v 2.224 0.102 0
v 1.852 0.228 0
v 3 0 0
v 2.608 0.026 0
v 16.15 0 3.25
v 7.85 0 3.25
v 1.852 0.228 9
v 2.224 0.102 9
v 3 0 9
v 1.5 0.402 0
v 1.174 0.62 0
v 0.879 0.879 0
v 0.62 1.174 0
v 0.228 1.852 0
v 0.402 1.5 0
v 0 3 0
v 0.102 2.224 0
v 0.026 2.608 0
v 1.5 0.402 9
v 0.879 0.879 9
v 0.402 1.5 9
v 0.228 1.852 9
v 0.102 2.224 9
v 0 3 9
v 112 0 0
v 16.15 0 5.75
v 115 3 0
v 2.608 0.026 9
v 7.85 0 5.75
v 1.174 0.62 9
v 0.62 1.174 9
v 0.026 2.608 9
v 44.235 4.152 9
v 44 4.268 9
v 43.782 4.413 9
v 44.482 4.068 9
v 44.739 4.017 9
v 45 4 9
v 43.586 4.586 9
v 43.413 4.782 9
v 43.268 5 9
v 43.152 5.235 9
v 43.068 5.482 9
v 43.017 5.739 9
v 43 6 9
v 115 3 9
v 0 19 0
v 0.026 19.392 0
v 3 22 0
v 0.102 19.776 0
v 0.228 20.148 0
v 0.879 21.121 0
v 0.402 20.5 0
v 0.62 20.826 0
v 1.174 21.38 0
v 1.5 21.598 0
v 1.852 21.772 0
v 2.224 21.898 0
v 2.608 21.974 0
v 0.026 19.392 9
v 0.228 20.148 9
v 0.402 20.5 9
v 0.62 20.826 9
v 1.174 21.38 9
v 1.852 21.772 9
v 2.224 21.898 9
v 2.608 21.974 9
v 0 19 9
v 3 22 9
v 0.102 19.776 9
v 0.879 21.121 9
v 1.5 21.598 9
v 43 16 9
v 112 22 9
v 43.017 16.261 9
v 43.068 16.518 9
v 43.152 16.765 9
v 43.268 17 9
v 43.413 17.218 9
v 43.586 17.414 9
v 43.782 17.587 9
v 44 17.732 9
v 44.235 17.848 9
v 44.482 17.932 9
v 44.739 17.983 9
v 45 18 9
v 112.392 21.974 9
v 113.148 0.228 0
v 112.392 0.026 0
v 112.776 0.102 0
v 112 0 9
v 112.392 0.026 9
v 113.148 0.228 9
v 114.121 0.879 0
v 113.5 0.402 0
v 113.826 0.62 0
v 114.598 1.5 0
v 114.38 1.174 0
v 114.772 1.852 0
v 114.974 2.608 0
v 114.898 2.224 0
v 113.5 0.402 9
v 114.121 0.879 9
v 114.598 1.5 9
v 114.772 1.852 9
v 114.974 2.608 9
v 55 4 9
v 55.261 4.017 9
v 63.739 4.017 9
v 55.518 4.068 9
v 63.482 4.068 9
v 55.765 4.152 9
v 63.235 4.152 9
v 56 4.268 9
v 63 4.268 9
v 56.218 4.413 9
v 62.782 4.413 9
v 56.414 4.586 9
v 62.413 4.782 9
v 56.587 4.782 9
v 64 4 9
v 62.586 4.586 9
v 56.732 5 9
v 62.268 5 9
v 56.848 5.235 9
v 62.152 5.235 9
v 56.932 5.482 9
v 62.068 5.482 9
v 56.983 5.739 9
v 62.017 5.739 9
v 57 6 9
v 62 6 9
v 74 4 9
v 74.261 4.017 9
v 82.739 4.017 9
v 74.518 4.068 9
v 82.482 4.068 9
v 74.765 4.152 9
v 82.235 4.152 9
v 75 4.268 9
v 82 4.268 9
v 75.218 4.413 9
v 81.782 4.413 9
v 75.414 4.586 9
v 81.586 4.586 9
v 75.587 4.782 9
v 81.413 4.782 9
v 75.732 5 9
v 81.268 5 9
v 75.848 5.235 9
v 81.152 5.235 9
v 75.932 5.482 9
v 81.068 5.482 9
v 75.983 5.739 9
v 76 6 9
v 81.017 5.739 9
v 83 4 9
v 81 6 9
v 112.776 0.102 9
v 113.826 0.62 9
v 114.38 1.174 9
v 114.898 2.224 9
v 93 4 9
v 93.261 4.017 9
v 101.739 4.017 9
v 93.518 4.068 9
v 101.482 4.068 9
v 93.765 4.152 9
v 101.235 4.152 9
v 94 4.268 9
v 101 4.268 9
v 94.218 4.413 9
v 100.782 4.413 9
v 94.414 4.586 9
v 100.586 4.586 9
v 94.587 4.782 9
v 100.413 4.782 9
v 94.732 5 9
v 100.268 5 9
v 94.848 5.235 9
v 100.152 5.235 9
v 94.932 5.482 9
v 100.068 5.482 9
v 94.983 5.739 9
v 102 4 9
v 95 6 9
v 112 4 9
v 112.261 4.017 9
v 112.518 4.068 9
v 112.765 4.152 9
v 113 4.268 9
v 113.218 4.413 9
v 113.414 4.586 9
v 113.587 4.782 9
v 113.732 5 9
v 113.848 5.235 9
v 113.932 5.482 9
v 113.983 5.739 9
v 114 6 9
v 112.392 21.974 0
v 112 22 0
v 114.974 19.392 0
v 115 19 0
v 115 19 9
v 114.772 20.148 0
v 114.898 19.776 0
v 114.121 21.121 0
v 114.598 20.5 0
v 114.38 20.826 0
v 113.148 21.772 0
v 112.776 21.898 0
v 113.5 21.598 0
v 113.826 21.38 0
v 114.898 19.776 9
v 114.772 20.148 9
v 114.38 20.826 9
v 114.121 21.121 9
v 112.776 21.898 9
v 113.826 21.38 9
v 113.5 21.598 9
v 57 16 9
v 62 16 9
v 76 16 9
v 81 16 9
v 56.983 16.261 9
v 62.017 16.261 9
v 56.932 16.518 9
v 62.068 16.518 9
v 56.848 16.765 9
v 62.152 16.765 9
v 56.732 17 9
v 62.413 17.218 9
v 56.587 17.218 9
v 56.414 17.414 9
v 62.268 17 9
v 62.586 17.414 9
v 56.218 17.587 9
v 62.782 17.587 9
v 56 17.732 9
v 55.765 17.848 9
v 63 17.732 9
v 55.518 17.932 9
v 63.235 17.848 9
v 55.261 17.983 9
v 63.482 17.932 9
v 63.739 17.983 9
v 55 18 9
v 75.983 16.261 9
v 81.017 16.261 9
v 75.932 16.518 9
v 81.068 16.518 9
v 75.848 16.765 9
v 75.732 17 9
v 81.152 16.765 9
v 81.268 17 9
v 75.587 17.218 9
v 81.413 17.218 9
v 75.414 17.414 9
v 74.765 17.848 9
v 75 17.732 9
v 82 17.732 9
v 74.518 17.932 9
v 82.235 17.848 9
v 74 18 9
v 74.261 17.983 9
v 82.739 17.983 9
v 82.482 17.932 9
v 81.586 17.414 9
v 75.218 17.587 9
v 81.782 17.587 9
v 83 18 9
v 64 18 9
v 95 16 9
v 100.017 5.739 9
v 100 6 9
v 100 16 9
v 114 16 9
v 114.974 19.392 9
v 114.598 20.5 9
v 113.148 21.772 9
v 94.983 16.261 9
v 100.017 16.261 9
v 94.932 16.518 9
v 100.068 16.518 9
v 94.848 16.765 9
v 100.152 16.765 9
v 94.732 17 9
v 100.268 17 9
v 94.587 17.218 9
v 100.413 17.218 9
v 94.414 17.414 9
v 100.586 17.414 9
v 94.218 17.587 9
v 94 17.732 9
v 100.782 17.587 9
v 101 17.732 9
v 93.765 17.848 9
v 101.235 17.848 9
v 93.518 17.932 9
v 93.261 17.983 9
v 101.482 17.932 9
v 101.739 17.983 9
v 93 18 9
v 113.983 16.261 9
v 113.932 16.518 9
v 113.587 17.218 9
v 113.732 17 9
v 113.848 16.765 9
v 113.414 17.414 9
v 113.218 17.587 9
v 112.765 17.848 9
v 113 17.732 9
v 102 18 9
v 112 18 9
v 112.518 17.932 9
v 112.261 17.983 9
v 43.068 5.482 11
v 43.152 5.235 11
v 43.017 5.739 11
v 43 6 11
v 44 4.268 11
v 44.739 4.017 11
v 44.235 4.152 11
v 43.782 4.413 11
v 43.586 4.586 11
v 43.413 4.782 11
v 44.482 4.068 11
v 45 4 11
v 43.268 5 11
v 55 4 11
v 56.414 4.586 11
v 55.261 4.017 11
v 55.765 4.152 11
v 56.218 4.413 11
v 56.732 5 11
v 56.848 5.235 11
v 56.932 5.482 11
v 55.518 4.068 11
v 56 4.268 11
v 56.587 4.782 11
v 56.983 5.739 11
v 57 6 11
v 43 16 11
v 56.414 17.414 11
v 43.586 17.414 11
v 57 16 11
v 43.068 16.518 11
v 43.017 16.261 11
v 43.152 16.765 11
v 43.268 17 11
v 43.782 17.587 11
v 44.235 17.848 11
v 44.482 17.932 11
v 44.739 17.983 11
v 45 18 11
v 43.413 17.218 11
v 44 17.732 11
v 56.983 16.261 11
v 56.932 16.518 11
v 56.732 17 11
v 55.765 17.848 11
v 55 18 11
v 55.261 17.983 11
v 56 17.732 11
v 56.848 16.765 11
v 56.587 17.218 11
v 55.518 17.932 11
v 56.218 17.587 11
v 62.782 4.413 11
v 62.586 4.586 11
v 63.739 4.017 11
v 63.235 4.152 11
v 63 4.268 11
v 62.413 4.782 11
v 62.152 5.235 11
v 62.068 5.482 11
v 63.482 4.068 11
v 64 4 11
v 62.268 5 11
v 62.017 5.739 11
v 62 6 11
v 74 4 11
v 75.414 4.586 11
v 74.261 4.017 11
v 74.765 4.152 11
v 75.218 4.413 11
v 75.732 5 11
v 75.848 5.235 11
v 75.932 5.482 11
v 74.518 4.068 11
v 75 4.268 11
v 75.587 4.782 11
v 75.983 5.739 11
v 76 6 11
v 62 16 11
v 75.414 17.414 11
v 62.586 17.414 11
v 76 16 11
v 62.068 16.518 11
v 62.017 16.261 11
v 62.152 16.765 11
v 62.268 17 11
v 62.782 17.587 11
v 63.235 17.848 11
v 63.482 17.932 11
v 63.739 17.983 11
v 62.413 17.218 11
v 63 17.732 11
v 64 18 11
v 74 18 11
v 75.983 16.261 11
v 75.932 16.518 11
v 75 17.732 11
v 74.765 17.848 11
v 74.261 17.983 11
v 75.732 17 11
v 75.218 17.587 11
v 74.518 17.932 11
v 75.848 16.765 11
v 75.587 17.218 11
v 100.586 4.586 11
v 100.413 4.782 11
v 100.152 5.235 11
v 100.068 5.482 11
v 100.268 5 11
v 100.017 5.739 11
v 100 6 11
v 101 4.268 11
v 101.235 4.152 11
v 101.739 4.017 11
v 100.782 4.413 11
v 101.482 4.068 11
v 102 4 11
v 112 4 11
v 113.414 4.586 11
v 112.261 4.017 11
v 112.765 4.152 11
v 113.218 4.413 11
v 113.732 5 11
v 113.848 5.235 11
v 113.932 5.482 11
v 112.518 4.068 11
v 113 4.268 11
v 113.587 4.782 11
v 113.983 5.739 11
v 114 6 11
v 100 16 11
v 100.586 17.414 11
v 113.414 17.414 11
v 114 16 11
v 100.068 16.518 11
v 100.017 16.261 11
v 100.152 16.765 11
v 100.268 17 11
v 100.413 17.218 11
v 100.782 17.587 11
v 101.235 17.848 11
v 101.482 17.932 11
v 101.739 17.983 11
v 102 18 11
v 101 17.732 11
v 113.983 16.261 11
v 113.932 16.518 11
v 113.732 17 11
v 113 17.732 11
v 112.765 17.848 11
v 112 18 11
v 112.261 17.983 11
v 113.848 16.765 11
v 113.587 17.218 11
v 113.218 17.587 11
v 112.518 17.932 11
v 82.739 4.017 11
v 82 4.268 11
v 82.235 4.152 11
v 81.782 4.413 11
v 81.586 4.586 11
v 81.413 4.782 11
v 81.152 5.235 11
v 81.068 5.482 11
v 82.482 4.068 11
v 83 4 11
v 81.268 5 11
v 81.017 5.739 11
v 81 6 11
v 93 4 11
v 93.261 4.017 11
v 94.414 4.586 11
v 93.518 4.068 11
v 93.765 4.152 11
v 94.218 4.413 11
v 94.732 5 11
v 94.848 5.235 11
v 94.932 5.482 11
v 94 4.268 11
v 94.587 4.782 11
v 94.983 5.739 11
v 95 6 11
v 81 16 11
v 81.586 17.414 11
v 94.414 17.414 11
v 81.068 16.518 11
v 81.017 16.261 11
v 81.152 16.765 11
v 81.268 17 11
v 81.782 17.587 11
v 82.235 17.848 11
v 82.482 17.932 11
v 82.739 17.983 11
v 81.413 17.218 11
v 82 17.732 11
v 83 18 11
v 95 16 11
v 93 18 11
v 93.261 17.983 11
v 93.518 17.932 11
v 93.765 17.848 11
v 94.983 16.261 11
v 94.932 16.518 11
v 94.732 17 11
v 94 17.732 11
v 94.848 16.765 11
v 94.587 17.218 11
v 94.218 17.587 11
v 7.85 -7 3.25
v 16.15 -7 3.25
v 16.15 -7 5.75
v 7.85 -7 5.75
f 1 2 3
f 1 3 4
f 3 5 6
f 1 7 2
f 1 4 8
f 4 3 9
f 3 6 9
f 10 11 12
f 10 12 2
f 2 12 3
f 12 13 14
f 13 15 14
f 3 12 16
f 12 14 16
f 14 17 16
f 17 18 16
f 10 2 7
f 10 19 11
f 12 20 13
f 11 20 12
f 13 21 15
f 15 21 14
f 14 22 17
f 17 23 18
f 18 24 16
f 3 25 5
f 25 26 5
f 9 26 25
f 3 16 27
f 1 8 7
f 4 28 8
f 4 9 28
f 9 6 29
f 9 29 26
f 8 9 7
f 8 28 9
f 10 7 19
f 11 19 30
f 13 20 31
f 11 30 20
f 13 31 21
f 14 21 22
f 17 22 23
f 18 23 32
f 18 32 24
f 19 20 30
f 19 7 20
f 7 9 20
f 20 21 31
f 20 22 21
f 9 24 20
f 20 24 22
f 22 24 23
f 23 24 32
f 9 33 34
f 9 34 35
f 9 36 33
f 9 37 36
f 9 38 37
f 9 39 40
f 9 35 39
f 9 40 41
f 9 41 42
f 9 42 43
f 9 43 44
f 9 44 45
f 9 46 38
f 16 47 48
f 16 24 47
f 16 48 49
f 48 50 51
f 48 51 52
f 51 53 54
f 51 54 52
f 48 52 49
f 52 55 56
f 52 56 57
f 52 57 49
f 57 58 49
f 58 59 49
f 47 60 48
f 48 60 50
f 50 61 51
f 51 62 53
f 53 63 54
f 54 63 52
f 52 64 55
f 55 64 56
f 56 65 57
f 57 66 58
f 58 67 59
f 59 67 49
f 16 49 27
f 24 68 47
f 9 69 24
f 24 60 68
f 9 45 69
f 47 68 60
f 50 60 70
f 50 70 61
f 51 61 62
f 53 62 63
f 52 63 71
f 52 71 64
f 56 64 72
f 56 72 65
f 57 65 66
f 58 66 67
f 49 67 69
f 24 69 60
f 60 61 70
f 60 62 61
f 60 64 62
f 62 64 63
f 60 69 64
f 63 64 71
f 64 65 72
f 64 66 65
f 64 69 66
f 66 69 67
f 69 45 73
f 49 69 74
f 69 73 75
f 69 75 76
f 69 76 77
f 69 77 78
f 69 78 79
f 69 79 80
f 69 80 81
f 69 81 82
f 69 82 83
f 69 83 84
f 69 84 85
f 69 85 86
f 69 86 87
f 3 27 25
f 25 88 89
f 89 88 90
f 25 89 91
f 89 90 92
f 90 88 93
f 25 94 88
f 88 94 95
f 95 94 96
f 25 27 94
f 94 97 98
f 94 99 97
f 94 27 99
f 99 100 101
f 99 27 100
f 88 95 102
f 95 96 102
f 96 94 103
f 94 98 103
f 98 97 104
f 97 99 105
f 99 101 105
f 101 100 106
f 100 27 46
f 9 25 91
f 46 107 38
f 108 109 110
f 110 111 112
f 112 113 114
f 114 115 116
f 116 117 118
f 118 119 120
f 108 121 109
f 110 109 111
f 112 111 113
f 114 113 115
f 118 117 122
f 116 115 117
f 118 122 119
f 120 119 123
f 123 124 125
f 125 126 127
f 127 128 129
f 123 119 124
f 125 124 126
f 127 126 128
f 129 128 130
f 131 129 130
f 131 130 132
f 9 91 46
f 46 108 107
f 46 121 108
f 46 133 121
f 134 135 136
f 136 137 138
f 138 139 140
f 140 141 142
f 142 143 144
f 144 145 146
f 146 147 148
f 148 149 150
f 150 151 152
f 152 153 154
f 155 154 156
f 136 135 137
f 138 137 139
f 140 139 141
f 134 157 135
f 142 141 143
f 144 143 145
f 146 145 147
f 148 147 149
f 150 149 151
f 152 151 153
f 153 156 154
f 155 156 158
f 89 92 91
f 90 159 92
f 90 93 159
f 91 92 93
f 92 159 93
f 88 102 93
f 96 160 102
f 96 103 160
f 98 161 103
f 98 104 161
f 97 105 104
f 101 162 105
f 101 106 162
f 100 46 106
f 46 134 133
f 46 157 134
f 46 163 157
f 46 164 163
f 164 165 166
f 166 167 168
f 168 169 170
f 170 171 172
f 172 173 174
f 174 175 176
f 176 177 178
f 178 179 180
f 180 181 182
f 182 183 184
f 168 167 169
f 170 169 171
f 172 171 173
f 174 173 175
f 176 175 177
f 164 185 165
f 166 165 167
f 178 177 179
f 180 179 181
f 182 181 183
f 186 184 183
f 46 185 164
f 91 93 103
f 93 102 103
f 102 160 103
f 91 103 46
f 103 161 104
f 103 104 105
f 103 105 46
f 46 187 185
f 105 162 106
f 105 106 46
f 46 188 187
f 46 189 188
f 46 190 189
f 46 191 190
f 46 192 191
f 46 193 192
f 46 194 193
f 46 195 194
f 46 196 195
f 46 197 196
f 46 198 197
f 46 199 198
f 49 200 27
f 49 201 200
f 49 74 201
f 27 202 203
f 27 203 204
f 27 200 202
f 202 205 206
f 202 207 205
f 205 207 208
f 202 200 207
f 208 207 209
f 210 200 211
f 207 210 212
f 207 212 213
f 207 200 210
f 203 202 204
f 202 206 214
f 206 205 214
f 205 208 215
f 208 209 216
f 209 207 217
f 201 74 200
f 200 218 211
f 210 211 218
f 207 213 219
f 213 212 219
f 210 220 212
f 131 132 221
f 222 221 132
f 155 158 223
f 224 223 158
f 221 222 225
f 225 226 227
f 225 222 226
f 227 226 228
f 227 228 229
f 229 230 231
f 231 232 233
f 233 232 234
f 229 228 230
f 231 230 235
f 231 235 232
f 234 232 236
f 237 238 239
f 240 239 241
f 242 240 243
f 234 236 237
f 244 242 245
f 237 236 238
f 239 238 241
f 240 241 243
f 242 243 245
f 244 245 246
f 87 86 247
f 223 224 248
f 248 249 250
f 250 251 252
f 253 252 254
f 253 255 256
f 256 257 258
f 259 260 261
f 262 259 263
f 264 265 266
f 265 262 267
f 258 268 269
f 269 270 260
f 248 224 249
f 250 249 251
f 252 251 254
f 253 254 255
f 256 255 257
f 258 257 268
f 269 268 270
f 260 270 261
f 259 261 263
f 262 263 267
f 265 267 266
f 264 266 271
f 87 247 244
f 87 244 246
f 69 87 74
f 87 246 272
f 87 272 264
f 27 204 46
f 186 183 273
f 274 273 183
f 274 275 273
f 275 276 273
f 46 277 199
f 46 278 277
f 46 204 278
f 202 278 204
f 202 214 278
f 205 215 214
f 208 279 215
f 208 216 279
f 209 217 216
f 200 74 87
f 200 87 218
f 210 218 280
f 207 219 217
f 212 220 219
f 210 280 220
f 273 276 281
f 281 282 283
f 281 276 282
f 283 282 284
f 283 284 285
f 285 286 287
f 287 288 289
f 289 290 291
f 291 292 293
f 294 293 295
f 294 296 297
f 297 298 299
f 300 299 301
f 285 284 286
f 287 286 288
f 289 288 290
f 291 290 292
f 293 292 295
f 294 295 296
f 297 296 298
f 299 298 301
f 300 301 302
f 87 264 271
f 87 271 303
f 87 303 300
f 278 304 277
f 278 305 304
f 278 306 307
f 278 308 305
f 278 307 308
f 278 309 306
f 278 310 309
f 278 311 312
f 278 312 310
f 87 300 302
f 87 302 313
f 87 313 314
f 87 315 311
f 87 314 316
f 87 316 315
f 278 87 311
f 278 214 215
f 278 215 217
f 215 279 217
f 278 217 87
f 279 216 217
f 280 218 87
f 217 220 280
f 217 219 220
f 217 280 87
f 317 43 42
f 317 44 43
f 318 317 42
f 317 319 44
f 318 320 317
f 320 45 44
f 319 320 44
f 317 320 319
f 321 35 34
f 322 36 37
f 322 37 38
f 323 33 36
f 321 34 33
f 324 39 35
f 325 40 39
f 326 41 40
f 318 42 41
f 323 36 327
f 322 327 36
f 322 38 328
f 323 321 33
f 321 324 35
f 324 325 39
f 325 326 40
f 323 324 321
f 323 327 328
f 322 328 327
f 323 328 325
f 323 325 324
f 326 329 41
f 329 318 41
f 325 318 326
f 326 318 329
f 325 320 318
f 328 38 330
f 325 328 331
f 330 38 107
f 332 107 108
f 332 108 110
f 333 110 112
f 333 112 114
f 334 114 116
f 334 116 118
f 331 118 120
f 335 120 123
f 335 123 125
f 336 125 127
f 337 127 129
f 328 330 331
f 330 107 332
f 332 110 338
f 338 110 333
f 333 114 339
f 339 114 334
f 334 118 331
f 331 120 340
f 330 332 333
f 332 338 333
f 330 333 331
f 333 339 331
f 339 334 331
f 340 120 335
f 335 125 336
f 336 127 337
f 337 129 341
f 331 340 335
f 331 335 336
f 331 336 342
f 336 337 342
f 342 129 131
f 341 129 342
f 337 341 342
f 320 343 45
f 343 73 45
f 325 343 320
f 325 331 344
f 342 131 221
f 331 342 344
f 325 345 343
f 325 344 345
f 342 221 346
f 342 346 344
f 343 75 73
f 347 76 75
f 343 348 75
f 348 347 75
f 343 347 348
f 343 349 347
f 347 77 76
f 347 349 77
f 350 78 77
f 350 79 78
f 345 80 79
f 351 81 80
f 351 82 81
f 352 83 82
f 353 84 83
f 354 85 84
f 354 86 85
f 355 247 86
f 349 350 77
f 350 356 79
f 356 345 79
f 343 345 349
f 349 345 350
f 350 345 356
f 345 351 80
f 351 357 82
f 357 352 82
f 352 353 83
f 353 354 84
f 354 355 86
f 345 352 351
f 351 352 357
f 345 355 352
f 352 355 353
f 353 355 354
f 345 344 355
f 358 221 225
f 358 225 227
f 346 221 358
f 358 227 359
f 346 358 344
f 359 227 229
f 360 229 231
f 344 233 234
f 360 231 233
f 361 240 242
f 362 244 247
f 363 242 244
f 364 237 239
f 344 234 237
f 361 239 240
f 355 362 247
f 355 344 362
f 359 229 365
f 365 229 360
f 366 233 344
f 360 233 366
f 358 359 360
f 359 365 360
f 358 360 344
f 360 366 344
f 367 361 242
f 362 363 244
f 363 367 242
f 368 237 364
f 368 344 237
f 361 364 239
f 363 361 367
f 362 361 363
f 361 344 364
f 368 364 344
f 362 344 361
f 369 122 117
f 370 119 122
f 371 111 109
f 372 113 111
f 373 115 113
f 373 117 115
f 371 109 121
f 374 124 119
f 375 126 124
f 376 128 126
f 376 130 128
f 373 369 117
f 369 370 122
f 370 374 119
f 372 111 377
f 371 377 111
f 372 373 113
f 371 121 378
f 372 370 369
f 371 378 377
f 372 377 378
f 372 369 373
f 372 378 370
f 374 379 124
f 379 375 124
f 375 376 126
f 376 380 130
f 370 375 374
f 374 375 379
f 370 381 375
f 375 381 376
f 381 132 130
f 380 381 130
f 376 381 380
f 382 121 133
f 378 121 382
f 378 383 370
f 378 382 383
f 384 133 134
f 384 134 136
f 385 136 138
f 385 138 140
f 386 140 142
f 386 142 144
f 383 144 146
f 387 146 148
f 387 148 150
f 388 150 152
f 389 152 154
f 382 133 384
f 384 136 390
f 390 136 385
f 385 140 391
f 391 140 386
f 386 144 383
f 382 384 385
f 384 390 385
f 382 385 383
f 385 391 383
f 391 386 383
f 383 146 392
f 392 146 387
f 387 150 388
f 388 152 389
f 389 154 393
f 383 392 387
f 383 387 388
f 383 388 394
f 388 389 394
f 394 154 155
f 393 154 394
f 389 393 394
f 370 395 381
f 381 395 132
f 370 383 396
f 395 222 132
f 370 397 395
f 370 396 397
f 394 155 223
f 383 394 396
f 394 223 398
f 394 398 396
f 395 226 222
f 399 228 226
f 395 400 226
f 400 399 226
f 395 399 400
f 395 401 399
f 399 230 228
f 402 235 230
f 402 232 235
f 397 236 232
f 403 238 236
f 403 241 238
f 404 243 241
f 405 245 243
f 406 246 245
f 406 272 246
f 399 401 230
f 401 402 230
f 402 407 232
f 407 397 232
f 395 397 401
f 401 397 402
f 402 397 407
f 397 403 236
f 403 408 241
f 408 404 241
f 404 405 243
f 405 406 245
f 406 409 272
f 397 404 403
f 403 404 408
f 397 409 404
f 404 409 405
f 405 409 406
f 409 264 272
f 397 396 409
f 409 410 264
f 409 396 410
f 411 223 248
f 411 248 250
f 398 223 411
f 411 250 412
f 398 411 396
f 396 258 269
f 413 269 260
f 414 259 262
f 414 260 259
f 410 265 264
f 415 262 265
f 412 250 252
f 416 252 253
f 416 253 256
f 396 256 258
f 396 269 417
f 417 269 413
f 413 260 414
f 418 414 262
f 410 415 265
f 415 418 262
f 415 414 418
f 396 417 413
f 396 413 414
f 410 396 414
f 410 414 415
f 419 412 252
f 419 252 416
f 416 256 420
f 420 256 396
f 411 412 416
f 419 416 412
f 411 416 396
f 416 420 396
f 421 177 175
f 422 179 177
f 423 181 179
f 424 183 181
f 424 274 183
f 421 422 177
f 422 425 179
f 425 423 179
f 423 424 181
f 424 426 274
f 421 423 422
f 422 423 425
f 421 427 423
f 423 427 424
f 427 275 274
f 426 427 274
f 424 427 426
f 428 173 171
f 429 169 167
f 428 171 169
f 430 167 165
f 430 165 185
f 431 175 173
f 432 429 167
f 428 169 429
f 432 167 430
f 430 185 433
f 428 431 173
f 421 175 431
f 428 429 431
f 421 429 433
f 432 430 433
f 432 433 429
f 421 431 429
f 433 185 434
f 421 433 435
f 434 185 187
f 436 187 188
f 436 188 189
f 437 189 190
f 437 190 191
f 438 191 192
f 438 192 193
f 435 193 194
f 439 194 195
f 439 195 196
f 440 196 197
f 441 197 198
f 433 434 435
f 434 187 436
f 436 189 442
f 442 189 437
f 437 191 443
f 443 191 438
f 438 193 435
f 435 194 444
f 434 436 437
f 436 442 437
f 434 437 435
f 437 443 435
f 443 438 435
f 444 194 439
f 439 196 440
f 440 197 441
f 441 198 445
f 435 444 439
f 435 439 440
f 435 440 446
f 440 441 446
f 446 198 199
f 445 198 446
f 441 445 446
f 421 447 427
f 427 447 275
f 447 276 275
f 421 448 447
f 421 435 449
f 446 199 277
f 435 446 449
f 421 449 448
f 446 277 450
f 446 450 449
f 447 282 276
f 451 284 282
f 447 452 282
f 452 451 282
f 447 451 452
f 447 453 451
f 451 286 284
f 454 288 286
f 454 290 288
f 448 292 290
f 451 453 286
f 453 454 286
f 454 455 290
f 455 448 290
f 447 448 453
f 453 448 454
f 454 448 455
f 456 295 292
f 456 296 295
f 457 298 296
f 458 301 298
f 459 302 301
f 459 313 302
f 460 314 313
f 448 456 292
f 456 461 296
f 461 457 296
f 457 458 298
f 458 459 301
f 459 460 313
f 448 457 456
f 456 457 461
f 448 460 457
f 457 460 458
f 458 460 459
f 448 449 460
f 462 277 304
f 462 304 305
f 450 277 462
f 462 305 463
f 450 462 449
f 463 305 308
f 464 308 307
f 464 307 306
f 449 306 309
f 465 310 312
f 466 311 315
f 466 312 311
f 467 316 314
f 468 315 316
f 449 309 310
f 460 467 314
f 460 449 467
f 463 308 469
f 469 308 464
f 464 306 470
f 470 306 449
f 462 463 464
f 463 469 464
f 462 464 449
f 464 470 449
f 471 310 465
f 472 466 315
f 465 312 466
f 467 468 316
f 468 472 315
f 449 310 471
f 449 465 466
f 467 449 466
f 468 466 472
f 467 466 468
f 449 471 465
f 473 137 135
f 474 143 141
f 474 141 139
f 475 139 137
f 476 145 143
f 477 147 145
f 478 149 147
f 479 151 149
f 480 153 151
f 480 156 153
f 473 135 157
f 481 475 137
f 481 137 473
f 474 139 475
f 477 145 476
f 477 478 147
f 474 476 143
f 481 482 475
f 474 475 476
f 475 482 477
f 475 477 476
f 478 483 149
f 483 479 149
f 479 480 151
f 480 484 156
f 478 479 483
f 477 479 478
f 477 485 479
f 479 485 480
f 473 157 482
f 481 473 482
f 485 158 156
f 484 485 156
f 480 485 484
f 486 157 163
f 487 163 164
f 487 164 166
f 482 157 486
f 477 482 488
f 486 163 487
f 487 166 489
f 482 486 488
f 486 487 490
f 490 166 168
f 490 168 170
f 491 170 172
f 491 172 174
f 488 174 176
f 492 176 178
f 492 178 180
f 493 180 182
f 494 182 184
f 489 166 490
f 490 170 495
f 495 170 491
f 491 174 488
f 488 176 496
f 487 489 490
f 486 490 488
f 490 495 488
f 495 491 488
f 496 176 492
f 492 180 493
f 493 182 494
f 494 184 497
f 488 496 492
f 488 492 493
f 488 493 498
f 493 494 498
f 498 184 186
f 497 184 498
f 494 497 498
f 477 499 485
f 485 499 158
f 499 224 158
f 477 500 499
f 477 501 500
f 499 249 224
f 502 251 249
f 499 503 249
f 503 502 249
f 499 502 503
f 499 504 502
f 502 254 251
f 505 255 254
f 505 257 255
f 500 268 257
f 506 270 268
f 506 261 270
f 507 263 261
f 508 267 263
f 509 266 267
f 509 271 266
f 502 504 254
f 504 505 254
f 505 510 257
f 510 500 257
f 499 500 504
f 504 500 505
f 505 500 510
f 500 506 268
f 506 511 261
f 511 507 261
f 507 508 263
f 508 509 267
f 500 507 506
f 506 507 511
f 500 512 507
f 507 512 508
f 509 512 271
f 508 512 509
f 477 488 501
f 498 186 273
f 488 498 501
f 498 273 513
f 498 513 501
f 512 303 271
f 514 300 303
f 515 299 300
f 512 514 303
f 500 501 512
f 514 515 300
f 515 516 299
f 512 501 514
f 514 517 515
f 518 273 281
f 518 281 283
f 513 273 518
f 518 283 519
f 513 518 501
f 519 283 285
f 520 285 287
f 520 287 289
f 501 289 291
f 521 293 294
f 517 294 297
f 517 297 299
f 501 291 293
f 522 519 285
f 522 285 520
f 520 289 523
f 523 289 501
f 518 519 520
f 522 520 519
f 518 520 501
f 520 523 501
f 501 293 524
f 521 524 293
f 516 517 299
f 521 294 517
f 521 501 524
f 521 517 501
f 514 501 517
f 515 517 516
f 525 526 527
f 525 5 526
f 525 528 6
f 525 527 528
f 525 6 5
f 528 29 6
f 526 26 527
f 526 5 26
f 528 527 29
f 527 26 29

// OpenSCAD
// K1 (Keys v1) — rough concept body, v0.1
// Not for printing/fit — a first-pass 3D sketch of the flush keypad form.
// All dimensions are placeholders until the MacBook port position and
// side taper are measured (see project summary).

$fn = 48;

/* ---------- Parameters ---------- */

// Body (sits along the MacBook's side, running to the front edge)
body_len    = 115;   // along the laptop side, rear (port) to front edge
body_wid    = 22;    // sticks out sideways from the laptop
body_ht     = 9;     // thin — roughly deck height
body_rad    = 3;     // corner rounding

// USB-C plug stub (perpendicular, out of the inner long face, near the rear)
plug_wid    = 8.3;   // USB-C plug width
plug_thk    = 2.5;   // USB-C plug thickness
plug_len    = 7;     // how far it protrudes into the port
plug_from_rear = 12; // plug center distance from the rear end of the body

// Keys
key_count   = 4;
key_size    = 14;    // square keycap side (MX-ish footprint)
key_pitch   = 19;    // MX spacing
key_ht      = 2;     // how proud the caps sit above the deck
key_rad     = 2;
keys_from_front = 8; // first key center from the front end

/* ---------- Helpers ---------- */

module rounded_box(l, w, h, r) {
    // rounded in plan view, flat top/bottom
    hull()
        for (x = [r, l - r], y = [r, w - r])
            translate([x, y, 0]) cylinder(h = h, r = r);
}

/* ---------- Parts ---------- */

// Coordinate frame: X = rear→front along the laptop side,
// Y = away from the laptop (Y=0 face touches the chassis), Z = up.

module body() {
    rounded_box(body_len, body_wid, body_ht, body_rad);
}

module plug() {
    // protrudes in -Y (into the laptop), vertically centered on the port height
    translate([plug_from_rear - plug_wid / 2,
               -plug_len,
               body_ht / 2 - plug_thk / 2])
        cube([plug_wid, plug_len + 1, plug_thk]);
}

module keys() {
    for (i = [0 : key_count - 1])
        translate([body_len - keys_from_front - i * key_pitch - key_size / 2,
                   (body_wid - key_size) / 2,
                   body_ht])
            rounded_box(key_size, key_size, key_ht, key_rad);
}

/* ---------- Assembly ---------- */

union() {
    body();
    plug();
    keys();
}
